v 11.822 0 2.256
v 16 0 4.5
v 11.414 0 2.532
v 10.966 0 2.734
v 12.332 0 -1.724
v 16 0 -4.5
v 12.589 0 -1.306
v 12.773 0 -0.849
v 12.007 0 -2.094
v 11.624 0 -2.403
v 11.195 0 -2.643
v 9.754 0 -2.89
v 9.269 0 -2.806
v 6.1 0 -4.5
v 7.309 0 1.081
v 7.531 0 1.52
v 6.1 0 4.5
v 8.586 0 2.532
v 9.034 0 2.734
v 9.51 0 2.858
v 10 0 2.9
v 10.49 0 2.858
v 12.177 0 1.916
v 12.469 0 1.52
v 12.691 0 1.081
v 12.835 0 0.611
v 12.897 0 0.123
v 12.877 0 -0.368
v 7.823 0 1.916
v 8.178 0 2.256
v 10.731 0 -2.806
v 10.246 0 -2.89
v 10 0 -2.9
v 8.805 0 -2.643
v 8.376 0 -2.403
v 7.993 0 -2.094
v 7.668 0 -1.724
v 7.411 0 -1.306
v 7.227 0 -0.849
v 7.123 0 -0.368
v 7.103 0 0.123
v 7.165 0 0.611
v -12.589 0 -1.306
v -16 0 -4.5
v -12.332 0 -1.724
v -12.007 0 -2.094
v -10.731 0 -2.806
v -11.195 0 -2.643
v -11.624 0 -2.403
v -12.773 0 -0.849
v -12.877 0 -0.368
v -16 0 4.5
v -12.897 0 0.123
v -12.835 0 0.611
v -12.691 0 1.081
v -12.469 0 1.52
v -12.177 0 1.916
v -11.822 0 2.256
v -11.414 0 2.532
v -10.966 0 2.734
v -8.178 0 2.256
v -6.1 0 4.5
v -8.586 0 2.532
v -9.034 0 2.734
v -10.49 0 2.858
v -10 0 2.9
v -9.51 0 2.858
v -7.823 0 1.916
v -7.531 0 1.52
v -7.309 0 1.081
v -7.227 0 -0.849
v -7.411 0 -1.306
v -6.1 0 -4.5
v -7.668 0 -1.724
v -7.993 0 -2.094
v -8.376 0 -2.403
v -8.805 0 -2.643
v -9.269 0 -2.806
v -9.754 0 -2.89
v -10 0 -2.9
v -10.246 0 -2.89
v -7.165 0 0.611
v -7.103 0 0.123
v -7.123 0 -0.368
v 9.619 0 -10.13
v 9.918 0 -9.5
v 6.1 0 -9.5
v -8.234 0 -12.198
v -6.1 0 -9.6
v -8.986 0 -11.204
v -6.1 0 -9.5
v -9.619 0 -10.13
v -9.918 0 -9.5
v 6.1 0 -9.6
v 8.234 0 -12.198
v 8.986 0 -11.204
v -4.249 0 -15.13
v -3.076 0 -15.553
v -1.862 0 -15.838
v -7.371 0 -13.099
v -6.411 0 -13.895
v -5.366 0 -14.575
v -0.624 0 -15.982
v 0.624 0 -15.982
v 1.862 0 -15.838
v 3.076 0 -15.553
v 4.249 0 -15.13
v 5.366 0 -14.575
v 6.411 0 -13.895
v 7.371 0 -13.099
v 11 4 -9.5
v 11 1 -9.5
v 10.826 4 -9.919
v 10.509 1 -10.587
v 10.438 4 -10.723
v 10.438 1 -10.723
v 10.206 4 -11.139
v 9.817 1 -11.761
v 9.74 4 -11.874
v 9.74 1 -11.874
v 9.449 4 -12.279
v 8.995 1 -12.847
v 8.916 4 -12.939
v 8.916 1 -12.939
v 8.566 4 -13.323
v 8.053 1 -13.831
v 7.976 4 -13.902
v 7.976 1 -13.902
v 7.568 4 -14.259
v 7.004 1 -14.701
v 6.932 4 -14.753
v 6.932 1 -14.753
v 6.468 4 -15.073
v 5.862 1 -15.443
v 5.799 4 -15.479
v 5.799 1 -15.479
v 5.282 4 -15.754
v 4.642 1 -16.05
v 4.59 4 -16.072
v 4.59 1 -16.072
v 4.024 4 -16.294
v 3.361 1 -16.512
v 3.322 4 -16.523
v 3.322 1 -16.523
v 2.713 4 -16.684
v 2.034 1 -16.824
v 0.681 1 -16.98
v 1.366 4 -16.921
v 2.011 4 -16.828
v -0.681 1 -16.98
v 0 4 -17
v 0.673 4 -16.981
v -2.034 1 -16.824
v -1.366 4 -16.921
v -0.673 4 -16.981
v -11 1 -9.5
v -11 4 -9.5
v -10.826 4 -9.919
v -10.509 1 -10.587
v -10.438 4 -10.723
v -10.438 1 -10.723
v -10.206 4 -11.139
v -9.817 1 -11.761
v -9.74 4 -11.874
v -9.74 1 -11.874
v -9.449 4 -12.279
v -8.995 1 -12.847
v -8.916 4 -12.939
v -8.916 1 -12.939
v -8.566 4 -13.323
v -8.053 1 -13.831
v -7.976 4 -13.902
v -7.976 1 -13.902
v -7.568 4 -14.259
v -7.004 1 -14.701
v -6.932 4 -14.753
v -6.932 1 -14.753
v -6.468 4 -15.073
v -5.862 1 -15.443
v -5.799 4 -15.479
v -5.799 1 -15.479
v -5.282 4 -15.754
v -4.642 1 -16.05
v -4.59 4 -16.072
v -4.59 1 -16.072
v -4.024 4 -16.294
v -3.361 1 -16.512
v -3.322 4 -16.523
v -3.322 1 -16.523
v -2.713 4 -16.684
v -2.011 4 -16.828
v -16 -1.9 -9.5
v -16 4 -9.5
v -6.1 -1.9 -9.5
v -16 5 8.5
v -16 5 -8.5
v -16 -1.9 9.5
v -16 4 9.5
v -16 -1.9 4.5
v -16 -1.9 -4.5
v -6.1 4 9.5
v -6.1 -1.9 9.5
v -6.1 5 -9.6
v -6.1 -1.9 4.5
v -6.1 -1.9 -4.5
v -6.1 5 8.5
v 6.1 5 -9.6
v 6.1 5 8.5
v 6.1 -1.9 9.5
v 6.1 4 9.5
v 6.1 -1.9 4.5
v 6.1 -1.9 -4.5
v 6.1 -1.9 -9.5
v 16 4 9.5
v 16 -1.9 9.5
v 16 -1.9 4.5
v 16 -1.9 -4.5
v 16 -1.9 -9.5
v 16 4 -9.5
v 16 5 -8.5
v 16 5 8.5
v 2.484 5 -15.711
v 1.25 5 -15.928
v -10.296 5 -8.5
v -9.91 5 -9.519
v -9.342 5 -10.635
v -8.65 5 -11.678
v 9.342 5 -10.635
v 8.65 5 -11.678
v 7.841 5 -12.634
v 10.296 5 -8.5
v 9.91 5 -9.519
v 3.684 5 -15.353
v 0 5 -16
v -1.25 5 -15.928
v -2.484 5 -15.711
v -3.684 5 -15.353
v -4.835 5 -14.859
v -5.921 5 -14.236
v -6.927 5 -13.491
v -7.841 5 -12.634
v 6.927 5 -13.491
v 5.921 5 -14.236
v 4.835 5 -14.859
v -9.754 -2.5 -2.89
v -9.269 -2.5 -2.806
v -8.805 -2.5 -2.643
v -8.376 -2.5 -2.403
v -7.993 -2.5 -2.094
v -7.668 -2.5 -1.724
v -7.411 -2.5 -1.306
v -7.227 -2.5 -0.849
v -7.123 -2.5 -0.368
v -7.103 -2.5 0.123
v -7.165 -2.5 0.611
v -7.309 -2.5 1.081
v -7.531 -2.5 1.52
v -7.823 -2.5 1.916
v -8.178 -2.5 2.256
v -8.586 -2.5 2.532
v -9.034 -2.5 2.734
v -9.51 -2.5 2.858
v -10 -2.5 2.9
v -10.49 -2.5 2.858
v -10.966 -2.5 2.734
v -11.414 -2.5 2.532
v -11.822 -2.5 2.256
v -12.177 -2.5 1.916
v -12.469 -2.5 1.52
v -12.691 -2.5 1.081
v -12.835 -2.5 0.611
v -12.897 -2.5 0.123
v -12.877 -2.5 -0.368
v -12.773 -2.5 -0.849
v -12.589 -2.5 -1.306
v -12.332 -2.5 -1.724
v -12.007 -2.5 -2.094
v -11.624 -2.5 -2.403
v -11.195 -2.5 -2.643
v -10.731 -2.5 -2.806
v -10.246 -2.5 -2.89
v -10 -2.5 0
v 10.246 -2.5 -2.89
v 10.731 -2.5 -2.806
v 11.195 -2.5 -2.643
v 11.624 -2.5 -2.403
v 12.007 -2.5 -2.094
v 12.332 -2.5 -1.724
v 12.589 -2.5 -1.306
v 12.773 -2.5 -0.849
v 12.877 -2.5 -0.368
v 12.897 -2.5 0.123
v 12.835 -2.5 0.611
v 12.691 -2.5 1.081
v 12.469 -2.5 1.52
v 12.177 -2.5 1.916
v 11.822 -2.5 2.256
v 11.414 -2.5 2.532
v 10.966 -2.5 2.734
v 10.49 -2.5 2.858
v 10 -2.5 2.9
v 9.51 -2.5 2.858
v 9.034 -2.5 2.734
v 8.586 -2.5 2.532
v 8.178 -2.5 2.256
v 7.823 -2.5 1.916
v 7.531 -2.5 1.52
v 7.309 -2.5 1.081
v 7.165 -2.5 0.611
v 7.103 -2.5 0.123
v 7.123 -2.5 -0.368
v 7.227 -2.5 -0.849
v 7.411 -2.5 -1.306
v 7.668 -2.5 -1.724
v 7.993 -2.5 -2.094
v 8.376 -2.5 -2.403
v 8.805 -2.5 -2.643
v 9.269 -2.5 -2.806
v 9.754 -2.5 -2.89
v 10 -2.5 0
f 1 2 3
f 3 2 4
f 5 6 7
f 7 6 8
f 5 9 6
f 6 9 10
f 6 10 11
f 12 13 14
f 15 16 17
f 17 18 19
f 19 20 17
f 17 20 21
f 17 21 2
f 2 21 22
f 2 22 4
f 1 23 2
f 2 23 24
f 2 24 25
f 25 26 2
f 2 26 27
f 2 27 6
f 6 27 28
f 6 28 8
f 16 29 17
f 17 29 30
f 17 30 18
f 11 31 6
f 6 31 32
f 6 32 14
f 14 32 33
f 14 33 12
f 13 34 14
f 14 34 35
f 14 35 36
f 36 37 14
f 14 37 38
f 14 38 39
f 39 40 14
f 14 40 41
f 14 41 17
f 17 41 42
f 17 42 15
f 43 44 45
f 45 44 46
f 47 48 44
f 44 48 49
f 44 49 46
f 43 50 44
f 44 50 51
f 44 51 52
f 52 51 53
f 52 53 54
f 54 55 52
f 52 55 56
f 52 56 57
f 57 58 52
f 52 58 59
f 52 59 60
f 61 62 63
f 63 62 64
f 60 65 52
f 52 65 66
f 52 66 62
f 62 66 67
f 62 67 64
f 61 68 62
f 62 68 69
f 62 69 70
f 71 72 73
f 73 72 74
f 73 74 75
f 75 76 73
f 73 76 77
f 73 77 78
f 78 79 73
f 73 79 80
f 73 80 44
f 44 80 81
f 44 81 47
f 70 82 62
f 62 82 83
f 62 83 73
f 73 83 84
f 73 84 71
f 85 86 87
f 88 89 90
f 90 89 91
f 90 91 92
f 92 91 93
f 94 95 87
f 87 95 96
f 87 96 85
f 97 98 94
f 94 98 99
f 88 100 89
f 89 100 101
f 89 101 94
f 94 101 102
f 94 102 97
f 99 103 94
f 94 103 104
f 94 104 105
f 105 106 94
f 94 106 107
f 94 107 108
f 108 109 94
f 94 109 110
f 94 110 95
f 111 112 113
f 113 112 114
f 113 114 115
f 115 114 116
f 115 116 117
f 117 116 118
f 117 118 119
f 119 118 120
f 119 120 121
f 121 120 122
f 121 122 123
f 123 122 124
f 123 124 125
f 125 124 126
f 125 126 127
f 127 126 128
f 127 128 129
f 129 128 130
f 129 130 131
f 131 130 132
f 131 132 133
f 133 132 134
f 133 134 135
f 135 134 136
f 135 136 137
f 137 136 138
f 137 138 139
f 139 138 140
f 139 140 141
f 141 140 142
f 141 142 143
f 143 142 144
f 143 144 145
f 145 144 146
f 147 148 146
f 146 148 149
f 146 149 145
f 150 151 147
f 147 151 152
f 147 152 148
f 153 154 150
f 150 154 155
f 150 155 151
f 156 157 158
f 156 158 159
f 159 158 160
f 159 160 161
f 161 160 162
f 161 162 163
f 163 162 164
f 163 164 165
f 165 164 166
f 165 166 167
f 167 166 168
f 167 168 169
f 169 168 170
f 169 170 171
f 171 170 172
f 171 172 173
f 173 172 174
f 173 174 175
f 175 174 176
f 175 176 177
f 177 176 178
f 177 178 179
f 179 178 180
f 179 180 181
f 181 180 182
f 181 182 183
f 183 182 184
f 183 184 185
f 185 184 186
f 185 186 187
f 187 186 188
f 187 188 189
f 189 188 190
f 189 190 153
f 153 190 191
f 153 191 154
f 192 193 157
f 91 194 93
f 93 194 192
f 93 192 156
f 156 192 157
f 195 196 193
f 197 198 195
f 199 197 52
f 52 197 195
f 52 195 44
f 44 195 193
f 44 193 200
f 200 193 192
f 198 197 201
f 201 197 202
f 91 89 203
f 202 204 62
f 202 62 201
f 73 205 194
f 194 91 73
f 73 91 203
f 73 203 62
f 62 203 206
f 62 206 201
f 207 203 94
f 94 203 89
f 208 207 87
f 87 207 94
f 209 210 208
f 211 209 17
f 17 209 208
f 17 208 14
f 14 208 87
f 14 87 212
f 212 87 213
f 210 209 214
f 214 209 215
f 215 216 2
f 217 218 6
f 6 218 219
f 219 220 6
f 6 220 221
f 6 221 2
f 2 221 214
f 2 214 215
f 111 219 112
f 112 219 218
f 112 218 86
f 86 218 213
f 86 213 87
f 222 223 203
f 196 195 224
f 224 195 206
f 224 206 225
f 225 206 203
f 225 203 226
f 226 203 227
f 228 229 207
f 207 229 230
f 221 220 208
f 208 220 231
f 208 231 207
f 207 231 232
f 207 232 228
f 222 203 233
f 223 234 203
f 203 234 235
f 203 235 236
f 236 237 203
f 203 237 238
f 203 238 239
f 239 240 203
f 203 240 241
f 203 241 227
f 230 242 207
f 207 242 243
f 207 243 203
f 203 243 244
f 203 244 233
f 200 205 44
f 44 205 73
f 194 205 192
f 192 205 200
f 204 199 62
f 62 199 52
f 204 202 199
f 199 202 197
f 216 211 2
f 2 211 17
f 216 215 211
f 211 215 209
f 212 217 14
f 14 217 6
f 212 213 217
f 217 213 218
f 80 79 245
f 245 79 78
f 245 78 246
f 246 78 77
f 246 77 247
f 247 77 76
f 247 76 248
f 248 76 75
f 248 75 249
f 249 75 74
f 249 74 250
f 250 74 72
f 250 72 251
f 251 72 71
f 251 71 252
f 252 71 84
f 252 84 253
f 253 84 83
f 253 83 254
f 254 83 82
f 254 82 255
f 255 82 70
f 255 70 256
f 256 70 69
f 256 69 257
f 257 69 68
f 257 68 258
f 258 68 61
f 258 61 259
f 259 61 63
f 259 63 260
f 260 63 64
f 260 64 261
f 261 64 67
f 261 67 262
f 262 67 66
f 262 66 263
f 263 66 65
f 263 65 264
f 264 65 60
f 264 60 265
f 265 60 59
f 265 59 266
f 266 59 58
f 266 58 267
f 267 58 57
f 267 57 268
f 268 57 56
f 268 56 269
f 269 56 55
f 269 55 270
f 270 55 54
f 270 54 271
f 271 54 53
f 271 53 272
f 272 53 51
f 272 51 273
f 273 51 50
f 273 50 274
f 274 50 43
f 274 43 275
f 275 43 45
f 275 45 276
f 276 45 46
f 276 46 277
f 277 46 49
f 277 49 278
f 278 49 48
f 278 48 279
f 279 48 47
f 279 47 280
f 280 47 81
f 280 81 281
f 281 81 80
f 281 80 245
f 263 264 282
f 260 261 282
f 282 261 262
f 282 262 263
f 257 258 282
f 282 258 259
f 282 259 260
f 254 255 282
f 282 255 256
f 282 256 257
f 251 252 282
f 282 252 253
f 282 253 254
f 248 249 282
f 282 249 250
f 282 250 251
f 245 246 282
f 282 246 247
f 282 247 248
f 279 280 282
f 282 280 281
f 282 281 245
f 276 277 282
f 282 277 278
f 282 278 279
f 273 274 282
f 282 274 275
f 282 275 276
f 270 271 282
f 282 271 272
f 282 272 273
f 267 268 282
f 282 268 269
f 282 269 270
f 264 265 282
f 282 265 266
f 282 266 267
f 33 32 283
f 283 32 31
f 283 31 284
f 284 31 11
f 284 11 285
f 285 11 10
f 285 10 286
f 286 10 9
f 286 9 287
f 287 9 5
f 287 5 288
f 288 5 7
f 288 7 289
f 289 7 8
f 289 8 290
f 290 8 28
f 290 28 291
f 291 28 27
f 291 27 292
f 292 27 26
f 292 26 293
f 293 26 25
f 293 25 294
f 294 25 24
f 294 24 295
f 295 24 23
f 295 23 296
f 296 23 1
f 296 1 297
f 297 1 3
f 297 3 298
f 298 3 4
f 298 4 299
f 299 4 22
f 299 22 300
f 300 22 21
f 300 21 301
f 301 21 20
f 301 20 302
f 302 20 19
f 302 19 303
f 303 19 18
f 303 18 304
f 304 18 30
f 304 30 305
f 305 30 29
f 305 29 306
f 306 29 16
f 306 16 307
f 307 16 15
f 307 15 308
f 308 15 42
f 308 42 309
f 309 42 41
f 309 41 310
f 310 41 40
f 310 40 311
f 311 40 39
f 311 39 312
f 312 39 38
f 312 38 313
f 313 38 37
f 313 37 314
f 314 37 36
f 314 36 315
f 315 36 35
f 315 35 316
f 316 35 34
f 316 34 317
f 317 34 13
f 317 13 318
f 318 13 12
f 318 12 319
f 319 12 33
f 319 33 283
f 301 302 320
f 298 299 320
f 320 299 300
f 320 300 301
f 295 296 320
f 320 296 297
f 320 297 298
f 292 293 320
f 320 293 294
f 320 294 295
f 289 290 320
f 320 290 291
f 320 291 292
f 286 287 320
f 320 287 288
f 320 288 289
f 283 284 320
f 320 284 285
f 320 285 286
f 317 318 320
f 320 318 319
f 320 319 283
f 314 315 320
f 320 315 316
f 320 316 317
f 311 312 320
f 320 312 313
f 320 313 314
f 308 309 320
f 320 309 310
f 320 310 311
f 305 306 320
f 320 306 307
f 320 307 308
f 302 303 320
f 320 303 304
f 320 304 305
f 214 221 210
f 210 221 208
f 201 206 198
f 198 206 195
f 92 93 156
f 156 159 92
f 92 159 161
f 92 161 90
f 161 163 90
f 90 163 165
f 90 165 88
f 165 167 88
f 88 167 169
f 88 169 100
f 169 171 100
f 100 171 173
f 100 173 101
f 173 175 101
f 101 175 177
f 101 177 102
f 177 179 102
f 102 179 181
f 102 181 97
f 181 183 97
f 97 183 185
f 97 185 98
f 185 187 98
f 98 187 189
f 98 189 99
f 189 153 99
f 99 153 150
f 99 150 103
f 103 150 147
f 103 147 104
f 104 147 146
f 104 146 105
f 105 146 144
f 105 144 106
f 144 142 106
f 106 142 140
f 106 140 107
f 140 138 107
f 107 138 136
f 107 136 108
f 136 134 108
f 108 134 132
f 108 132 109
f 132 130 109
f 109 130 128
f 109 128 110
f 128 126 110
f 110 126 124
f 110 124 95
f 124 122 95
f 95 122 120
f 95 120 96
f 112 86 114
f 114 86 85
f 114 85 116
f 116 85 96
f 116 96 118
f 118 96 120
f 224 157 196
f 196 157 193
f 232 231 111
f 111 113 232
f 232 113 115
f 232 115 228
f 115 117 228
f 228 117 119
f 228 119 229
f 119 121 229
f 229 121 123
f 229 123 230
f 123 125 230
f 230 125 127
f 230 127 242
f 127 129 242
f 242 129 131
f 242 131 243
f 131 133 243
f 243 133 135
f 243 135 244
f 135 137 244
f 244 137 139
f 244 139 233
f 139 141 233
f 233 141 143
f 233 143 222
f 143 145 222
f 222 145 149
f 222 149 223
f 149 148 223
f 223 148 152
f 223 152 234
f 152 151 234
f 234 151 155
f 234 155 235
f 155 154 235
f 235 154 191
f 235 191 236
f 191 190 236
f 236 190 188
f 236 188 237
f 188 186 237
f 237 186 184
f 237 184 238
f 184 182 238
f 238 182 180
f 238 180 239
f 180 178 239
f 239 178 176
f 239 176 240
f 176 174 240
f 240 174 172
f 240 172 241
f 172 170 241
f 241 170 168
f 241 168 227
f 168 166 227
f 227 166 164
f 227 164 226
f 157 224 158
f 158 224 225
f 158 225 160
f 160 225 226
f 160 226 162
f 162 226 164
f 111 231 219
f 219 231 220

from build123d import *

# Parameters (mm, degrees)
BOSS_EXTRUDE1_DEPTH = 5
SKETCH4_W           = 9.9
SKETCH4_H           = 5
BOSS_EXTRUDE2_DEPTH = 1.9
SKETCH5_R           = 2.9
BOSS_EXTRUDE3_DEPTH = 2.5
CHAMFER1_SIZE       = 1


with BuildPart() as part:
    # Sketch3 → Boss-Extrude1 (new body)
    with BuildSketch(Plane(origin=(0, 0, 0), x_dir=(1, 0, 0), z_dir=(0, 1, 0))):
        with BuildLine():
            Line((-16, -9.5), (-6.1, -9.5))
            Line((-6.1, -9.5), (-6.1, 9.6))
            Line((-6.1, 9.6), (6.1, 9.6))
            Line((6.1, 9.6), (6.1, -9.5))
            Line((6.1, -9.5), (16, -9.5))
            Line((16, -9.5), (16, 9.5))
            Line((16, 9.5), (11, 9.5))
            ThreePointArc((11, 9.5), (0, 17), (-11, 9.5))
            Line((-11, 9.5), (-16, 9.5))
            Line((-16, 9.5), (-16, -9.5))
        make_face()
    extrude(amount=BOSS_EXTRUDE1_DEPTH)

    # Sketch4 → Boss-Extrude2 (add)
    with BuildSketch(Plane(origin=(0, 0, 0), x_dir=(1, 0, 0), z_dir=(0, 1, 0))):
        with Locations((-11.05, 7)):
            Rectangle(SKETCH4_W, SKETCH4_H)
        with Locations((-11.05, -7)):
            Rectangle(SKETCH4_W, SKETCH4_H)
        with Locations((11.05, 7)):
            Rectangle(SKETCH4_W, SKETCH4_H)
        with Locations((11.05, -7)):
            Rectangle(SKETCH4_W, SKETCH4_H)
    extrude(amount=-BOSS_EXTRUDE2_DEPTH)

    # Sketch5 → Boss-Extrude3 (add)
    with BuildSketch(Plane(origin=(0, 0, 0), x_dir=(1, 0, 0), z_dir=(0, 1, 0))):
        with Locations(Location((-10, 0, 0), (0, 0, 270))):
            Circle(SKETCH5_R)
        with Locations(Location((10, 0, 0), (0, 0, 270))):
            Circle(SKETCH5_R)
    extrude(amount=-BOSS_EXTRUDE3_DEPTH)

    # Chamfer1
    chamfer1_edges = [part.edges().sort_by_distance(p)[0] for p in [
        (0, 0, -17),
        (-11.05, 5, 9.5),
        (11.05, 5, 9.5),
        (13.5, 5, -9.5),
        (0, 5, -17),
        (-13.5, 5, -9.5),
    ]]
    chamfer(chamfer1_edges, length=CHAMFER1_SIZE)


solid = part.part
